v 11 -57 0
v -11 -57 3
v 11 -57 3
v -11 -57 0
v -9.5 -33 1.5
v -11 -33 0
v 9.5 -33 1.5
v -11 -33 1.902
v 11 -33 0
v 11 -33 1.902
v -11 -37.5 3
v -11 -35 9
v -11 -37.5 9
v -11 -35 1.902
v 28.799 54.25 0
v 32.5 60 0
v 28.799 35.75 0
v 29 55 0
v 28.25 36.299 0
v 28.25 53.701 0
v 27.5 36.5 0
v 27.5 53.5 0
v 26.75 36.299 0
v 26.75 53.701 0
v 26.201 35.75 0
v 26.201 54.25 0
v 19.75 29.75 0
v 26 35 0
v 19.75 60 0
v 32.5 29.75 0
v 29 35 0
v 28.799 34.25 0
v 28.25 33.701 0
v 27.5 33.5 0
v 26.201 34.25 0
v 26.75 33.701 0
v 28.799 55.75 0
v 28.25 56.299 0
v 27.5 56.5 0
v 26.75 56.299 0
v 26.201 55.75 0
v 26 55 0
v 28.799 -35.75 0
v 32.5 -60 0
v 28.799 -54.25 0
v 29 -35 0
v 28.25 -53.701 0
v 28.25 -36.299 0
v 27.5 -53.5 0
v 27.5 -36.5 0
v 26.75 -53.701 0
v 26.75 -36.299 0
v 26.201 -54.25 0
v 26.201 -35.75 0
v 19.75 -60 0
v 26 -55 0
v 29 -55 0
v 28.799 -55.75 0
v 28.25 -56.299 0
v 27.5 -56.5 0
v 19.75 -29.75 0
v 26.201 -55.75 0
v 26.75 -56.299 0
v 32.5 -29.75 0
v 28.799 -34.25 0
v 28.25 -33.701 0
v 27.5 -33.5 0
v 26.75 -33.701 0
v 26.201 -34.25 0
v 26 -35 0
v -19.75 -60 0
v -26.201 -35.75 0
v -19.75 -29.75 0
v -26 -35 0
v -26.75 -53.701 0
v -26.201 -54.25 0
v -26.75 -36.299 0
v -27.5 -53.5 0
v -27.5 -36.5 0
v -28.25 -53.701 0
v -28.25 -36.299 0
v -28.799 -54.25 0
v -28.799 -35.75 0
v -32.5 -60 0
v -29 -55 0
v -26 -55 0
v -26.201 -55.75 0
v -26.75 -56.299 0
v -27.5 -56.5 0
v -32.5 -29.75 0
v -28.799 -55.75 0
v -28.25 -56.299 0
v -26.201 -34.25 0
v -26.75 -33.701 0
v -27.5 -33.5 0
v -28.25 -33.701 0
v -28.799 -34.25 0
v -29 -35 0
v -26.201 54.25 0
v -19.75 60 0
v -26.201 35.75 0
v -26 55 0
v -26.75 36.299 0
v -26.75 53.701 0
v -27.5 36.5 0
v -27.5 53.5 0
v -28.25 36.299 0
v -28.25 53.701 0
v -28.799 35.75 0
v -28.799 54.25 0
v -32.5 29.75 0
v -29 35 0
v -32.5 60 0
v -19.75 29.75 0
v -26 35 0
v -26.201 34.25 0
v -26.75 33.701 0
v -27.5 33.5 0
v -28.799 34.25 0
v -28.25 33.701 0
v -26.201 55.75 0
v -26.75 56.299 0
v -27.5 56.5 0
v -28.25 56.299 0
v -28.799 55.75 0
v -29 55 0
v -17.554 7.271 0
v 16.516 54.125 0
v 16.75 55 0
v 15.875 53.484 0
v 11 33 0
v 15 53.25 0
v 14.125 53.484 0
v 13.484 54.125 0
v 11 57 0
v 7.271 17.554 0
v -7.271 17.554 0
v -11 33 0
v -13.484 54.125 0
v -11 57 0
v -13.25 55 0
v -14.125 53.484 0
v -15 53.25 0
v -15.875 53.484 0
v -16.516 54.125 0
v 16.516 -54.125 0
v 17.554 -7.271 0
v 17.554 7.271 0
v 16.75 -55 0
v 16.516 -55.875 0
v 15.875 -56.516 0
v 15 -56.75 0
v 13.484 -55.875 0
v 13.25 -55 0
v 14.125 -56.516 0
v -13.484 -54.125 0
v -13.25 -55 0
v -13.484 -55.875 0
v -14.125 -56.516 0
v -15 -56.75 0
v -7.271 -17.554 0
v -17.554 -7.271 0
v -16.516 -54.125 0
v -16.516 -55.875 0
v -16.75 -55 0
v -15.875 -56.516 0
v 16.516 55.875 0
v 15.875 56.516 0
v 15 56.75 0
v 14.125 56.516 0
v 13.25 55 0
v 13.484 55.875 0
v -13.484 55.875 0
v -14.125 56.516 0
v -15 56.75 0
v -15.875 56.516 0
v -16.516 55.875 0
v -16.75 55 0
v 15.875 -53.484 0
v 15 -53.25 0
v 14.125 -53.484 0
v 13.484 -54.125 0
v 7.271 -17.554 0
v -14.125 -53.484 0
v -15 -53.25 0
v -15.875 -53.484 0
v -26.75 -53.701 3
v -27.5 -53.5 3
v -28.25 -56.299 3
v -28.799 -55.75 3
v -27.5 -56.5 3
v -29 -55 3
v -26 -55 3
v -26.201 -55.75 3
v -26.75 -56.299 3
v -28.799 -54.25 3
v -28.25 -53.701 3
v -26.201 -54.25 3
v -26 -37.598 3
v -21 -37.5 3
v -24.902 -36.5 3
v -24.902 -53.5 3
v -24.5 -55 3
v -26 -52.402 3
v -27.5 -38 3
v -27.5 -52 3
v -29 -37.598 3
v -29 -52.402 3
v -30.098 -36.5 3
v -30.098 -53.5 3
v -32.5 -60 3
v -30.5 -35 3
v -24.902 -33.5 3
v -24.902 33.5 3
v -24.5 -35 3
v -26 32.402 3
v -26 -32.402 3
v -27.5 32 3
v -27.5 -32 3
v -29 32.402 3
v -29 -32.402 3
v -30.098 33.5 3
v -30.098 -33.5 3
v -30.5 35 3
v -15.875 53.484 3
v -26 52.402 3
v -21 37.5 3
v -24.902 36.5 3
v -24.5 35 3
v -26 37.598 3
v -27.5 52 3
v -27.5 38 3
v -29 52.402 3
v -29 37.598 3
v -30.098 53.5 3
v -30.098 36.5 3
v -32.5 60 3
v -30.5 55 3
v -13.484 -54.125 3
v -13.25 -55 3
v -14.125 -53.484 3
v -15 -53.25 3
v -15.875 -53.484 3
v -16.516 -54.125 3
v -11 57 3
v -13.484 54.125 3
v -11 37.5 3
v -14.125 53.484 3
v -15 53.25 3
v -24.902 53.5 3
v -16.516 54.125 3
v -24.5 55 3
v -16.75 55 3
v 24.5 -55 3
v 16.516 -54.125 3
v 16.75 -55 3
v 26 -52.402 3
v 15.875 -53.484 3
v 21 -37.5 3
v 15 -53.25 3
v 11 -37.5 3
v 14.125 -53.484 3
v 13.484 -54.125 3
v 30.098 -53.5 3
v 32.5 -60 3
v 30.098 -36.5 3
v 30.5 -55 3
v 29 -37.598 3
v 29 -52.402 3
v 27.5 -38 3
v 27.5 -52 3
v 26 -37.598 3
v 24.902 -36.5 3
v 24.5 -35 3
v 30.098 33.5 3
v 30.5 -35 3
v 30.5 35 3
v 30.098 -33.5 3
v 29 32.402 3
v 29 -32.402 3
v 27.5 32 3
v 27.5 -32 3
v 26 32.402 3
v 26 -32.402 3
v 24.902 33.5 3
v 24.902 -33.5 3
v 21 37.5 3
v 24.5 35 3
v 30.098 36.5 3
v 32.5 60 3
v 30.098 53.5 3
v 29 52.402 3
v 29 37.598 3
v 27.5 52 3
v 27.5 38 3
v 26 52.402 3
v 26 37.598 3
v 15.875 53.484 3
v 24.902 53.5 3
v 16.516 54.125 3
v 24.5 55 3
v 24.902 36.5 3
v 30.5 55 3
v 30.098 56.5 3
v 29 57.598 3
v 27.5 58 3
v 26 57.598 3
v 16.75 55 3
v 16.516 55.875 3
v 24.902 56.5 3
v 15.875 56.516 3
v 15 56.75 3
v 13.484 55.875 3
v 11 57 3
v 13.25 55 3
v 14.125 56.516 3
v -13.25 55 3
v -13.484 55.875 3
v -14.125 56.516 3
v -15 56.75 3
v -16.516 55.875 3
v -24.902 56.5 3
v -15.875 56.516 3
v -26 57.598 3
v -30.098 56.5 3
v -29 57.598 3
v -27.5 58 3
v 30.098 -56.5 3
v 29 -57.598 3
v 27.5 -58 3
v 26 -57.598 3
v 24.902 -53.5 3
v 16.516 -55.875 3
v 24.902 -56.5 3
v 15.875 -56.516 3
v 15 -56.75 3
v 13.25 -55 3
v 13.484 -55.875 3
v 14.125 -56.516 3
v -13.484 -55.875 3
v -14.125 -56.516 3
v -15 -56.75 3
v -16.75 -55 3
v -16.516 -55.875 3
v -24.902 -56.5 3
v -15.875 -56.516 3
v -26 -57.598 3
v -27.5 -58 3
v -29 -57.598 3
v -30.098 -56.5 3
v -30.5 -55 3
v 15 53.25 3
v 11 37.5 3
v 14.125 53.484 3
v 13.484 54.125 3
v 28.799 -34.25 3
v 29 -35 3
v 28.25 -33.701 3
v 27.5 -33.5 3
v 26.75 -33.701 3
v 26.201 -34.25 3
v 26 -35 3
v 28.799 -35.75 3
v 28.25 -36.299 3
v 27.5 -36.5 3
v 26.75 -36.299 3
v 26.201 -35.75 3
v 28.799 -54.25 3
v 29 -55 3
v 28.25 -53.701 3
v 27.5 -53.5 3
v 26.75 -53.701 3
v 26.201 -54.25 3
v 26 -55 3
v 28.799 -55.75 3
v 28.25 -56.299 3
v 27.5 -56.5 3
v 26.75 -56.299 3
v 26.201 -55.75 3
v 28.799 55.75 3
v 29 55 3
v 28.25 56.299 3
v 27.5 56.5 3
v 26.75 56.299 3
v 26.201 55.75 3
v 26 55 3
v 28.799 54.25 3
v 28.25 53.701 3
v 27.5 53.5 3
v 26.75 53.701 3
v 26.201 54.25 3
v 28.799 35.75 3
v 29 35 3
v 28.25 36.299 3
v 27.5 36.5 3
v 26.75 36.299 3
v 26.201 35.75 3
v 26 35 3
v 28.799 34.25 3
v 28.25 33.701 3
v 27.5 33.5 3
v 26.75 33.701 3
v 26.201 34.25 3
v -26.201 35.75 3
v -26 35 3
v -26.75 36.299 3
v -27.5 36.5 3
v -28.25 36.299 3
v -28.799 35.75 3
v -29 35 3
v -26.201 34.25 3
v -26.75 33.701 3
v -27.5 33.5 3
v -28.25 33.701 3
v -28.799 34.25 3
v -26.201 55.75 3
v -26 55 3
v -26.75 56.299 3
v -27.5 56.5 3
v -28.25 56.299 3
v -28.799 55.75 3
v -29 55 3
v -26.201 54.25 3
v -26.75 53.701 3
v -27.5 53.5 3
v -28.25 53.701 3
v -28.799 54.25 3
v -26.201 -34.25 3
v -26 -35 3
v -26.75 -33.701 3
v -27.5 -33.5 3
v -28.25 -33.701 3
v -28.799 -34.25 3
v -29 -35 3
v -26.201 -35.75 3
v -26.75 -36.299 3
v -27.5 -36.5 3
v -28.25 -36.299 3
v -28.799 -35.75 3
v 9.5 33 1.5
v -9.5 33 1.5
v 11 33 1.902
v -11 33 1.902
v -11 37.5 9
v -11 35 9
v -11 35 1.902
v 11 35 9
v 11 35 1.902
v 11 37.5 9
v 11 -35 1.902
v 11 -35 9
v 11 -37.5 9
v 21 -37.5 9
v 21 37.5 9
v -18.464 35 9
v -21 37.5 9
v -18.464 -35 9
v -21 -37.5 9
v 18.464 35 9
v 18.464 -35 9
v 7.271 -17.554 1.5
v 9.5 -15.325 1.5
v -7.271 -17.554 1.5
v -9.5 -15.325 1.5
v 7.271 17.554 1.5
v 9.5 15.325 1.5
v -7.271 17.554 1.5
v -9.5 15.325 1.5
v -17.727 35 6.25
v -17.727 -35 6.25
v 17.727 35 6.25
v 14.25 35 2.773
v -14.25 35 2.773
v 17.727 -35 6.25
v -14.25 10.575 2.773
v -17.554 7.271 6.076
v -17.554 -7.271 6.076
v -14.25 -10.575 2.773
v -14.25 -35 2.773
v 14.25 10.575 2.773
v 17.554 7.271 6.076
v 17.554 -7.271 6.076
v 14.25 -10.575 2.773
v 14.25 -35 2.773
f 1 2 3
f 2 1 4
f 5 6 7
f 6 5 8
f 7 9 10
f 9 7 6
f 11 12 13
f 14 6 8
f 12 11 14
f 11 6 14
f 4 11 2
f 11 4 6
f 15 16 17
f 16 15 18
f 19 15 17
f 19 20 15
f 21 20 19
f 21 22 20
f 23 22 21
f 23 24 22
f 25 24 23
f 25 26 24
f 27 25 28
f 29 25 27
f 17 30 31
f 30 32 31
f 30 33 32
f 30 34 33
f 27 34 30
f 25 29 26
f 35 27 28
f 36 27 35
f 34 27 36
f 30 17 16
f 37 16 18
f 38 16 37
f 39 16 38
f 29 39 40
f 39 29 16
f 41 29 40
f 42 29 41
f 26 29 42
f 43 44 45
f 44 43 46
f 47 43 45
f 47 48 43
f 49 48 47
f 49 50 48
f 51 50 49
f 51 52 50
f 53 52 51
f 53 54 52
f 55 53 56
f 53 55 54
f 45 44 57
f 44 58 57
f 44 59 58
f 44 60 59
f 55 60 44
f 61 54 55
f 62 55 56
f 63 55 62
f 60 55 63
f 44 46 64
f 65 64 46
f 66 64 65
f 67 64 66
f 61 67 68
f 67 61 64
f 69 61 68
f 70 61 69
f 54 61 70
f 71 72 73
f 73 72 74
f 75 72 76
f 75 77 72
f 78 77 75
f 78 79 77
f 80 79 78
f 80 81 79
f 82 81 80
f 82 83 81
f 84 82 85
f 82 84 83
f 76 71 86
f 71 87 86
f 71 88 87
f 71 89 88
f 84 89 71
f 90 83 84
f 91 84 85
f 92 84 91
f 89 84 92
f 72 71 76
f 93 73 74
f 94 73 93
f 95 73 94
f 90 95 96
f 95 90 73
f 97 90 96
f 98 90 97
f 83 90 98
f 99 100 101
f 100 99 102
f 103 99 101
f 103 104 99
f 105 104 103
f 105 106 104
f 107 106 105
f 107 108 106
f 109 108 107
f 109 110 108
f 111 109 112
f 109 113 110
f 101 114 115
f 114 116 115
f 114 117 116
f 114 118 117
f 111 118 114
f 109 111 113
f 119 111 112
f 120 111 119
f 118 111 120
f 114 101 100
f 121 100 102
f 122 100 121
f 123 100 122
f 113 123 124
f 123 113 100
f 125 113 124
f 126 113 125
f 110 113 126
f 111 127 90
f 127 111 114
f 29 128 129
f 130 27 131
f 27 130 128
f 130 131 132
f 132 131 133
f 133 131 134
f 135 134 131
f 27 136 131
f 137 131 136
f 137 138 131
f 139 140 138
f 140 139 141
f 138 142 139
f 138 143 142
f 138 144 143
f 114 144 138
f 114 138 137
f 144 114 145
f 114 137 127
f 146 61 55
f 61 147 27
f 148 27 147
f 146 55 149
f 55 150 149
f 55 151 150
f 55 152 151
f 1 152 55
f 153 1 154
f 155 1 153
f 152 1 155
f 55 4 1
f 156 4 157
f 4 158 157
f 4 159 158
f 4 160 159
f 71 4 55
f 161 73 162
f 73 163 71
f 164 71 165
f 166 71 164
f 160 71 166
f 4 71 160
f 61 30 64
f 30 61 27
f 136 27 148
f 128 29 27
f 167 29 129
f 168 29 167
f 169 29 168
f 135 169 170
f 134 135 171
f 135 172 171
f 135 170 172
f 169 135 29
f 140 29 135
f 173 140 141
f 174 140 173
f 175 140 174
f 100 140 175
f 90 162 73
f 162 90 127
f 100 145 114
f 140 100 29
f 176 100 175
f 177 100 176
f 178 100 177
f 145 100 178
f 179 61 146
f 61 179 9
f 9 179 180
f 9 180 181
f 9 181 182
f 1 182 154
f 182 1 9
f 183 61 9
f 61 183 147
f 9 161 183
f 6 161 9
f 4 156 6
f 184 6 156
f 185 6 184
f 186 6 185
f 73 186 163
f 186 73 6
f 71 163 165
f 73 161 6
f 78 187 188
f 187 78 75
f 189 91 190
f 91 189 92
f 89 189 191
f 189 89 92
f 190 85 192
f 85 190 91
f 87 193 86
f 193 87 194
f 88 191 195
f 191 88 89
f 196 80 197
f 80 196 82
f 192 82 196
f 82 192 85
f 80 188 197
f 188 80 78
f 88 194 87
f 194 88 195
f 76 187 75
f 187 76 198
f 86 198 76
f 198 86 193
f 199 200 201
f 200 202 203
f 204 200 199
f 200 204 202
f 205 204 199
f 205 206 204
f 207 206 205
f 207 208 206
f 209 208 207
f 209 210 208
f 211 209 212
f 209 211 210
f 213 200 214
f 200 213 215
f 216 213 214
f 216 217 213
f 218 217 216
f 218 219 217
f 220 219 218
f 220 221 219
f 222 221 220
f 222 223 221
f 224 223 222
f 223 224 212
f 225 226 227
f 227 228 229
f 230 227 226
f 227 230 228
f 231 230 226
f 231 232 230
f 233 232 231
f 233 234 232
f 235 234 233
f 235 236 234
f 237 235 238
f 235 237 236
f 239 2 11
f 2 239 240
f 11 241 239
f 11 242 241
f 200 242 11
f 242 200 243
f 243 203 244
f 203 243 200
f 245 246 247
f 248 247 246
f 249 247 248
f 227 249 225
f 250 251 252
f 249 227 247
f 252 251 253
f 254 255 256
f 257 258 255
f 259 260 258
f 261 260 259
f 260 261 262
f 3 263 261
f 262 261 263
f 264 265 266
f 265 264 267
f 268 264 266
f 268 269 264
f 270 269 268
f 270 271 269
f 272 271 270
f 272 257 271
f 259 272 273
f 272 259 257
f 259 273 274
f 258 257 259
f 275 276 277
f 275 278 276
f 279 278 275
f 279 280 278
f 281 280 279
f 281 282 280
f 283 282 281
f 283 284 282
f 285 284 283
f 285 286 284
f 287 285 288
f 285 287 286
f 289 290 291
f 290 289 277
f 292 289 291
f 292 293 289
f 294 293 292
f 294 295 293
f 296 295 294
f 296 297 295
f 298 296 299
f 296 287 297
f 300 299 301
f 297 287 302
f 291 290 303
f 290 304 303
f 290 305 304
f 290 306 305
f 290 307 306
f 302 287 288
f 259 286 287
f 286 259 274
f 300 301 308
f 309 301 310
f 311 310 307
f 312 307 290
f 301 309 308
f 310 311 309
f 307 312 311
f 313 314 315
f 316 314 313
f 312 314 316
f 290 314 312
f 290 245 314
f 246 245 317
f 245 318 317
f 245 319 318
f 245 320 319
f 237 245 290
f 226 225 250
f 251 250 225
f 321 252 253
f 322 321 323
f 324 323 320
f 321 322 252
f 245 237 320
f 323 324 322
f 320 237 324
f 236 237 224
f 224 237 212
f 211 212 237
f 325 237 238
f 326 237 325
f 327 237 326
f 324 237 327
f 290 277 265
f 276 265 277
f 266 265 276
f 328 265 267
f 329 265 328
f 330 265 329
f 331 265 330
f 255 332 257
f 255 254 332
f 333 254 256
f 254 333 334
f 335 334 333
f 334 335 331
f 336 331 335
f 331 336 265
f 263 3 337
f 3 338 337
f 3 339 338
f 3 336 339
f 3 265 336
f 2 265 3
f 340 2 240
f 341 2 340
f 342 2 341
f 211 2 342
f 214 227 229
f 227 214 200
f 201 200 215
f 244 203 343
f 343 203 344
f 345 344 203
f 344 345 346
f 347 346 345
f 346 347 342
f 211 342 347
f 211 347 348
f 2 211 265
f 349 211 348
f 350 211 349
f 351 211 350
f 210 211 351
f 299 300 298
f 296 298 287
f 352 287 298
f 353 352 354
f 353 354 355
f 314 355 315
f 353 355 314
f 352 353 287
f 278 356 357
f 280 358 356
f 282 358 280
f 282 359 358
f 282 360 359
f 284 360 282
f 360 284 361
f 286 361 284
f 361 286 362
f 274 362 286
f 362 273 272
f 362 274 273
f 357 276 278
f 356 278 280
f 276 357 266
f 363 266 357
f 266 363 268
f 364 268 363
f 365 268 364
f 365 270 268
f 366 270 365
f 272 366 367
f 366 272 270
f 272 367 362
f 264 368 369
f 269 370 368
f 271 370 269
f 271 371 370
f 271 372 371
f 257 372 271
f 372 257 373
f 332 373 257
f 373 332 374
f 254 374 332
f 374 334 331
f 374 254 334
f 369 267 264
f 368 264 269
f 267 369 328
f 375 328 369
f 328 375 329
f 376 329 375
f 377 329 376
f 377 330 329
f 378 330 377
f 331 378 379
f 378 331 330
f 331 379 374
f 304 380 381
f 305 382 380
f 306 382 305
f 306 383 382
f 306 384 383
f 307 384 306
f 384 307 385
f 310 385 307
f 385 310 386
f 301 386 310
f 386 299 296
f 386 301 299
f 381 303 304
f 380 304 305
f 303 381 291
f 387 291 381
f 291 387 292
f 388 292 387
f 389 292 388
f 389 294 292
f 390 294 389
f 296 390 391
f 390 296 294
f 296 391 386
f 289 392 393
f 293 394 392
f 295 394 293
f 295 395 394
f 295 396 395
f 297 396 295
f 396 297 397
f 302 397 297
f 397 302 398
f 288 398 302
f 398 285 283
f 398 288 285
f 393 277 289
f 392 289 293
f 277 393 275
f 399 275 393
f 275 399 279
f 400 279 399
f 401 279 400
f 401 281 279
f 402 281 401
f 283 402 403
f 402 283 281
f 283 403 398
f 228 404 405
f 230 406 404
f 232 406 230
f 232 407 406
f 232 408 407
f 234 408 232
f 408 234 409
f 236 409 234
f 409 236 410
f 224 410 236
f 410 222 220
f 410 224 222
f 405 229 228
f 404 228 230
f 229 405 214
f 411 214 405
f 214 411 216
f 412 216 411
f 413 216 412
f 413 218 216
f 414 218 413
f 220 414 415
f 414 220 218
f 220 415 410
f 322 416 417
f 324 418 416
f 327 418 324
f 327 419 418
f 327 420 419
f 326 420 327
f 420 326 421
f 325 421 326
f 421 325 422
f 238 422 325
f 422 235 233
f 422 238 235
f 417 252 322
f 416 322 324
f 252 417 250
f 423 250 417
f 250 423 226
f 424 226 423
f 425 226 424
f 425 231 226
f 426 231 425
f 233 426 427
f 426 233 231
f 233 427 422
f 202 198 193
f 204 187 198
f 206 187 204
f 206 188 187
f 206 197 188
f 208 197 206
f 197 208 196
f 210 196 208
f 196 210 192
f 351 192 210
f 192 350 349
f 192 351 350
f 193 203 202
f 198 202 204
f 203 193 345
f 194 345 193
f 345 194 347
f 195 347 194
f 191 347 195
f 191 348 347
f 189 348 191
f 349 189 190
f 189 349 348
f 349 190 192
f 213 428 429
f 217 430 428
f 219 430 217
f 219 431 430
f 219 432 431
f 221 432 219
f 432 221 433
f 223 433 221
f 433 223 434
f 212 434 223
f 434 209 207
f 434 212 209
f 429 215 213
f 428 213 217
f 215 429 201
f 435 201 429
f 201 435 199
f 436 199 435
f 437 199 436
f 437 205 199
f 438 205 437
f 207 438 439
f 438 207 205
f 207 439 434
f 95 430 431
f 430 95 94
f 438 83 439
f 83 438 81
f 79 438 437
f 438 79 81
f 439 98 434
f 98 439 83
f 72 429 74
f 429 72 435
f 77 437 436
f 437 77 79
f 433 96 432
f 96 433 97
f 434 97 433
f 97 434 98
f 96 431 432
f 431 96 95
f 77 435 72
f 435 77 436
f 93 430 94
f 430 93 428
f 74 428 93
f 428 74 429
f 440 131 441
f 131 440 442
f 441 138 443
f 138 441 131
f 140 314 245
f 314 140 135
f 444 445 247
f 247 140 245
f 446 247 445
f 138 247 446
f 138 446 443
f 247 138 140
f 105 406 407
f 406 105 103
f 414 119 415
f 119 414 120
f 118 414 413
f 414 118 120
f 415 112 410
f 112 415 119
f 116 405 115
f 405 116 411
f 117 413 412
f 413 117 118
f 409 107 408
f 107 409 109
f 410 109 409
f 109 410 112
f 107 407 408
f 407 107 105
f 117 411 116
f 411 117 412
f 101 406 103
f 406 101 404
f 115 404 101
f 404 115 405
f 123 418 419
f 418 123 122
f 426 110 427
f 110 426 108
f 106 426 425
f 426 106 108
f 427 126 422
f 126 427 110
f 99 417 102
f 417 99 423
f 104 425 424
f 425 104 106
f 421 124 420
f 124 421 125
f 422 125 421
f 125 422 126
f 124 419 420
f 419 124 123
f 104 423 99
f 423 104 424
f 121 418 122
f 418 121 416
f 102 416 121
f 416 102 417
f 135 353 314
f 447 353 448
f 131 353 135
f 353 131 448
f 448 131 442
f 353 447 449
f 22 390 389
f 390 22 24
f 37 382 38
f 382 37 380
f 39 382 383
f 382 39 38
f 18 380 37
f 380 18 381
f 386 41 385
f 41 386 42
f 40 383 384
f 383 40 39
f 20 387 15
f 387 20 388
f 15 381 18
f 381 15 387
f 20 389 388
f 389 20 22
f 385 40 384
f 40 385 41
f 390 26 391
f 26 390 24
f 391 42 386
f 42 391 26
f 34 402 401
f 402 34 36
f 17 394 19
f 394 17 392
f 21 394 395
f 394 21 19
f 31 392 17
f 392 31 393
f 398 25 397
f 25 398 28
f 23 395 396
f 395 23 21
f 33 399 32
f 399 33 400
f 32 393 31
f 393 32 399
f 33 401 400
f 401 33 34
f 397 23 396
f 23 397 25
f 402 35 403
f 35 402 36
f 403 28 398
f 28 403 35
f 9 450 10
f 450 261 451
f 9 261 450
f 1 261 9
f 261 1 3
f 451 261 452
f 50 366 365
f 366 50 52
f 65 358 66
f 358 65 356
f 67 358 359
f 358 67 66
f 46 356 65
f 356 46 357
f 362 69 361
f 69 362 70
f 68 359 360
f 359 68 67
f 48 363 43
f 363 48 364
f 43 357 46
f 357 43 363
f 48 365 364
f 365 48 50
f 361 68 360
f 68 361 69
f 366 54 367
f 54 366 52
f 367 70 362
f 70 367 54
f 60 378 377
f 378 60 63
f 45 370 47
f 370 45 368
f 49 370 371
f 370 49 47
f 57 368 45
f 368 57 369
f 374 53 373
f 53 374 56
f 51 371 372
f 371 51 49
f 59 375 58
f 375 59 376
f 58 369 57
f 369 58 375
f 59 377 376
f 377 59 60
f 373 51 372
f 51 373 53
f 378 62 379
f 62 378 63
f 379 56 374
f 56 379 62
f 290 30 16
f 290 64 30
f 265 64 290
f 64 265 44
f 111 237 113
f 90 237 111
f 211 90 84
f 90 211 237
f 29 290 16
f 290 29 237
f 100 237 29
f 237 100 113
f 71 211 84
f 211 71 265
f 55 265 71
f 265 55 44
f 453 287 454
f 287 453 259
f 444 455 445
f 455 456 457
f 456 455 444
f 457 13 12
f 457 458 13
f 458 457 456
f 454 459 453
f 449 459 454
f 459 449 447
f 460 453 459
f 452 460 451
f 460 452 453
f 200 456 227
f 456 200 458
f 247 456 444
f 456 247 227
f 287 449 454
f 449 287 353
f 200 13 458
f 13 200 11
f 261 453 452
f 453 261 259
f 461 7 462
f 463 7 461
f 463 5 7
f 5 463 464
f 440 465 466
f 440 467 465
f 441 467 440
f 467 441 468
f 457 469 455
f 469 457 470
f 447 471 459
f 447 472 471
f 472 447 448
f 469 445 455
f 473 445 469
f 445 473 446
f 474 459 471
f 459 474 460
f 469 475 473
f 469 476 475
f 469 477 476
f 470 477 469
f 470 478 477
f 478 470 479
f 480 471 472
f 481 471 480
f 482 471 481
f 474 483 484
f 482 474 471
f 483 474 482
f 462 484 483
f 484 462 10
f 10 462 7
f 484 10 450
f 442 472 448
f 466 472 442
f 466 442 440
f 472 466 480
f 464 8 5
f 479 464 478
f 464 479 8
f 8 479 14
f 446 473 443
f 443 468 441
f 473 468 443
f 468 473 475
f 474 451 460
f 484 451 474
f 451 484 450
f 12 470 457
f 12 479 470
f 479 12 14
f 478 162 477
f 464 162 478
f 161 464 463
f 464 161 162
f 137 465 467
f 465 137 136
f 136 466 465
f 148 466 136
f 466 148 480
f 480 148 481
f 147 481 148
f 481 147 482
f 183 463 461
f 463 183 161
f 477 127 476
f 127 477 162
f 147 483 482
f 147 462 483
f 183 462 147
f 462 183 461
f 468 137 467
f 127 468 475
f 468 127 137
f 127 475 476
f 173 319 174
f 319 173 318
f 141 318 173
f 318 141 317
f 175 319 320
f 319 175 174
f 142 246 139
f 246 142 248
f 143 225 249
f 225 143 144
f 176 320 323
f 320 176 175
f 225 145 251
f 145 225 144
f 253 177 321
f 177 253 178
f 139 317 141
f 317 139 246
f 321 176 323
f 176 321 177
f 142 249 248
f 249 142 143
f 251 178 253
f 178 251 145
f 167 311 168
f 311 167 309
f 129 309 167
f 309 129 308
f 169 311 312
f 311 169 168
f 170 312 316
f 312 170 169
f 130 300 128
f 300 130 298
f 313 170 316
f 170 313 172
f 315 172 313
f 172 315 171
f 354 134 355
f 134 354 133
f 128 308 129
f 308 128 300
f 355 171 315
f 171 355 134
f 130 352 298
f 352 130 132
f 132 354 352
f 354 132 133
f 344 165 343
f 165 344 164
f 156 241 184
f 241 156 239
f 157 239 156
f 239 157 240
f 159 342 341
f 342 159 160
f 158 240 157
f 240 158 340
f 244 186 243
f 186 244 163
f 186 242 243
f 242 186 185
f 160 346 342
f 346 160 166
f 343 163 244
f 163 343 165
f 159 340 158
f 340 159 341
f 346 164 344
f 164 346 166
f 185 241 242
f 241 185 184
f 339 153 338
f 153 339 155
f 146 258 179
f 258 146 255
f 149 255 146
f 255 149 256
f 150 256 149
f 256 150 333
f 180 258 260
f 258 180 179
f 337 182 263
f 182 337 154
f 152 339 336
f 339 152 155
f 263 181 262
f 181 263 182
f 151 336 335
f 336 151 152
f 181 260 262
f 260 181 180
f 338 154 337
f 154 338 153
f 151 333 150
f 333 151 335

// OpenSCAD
// file: MMMotor.scad
$fn=12;

module MMMotor(){
    $fn=12;
    translate([0,-12/2,-10/2]){
        cube([9.5,12,10]);
        intersection(){
            cube([9+15,12,10]);
            rotate([0,90,0]){
                translate([-10/2,12/2,0]){
                    cylinder(9+15,d=12);
                }
            }
        }
    }
    rotate([0,270,0]){
        cylinder(9,d=4);
        cylinder(2,d=6);
    }
    rotate([0,90,0]){
        cylinder(9+15+2,d=6);
        cylinder(9+15+4.5,d=2);
    }
    translate([9+15,-12/2-6,-10/2]){
        hull(){
            cube([1.6,18,10]);
            translate([-2,-(18-18),0]){
                cube([12,18+6,15]);
            }
            translate([-2,(18+6)/2,20]){
                rotate([0,90,0]){
                    cylinder(12,d=18+9.5,$fn=6);
                }
            }
        }
    }
}
module IMU(){
    x=.8*25.4;  //convert from In to mm
    y=.5*25.4;  //Convert form In to mm
    z=1.6;      //already in MM no conversion necessary
    b=.1*25.4;   //Boarder In to MM
    translate ([-x/2,-y/2,0]){
        minkowski(){
            cube([x,y,z]);
            cylinder(z,r=b);
        }
        translate([0,0,-10]){
            translate([0,0,0]){
                cylinder(20,d=2.5);
            }
            translate([x,0,0]){
                cylinder(20,d=2.5);
            }
            translate([x,y,0]){
                cylinder(20,d=2.5);
            }
            translate([0,y,0]){
                cylinder(20,d=2.5);
            }
        }
      
    }
}
module LiPo(x=68,y=34,z=9,b=0){
    x=x+b*2;
    y=y+b*2;
    
    translate([-x/2,-y/2,.25]){
        cube([x,y,z]);
    }
}
module LiPo2(){
    rotate([90,0,0]){
        translate([0,0,-70/2]){
            hull(){
                translate([-19/2,0,0]){
                    cylinder(70,d=19);
                }
                translate([19/2,0,0]){
                    cylinder(70,d=19);
                }
            }
        }
    }
}
module Spacer(h=12,o=7,i=3){
    difference(){
        cylinder(h,d=o,$fn=6);
        cylinder(h,d=i,$fn=12);
    }
}
module Mecanum(Angle=45){
    
    rotate([0,270,0]){
        cylinder(2,d=35);
        translate([0,0,22]){
            cylinder(2,d=35);
        }
    
        for (x = [0:6]){
            rotate([0,0,(360/6)*x]){
                translate([(35/2)-2,0,24/2]){
                    rotate([Angle,0,0]){
                        translate([0,0,-24/2]){
                            cylinder(24,d=8);
                        }
                    }
                }
            }
        }
    }
}
 module MotorMountH(){
    translate([15/2-2,0,-15/2+1.5]){
         rotate([0,0,270]){
            difference(){
                union(){
                     translate([-30/2,-15/2,0]){
                         cube([30,15,3]);
                     }
                     translate([-17/2,-15/2,0]){
                         cube([17,15,13]);
                     }
                }
                rotate([0,0,90]){
                    translate([-15/2+2,0,15/2-2.5]){
                        MMMotor();
                    }
                    translate([-10/2,-12/2,-3]){
                            cube([15,12,10]);
                    }
                }
                translate([-10,0,0]){
                    cylinder(25,d=3);
                    translate([0,0,2]){
                        rotate([0,0,90]){
                            cylinder(20,d=6,$fn=6);
                        }
                    }
                }
                translate([10,0,0]){
                    cylinder(25,d=3);
                    translate([0,0,2]){
                        rotate([0,0,90]){
                            cylinder(20,d=6,$fn=6);
                        }
                    }
                }
            }
         }
     }
 } 
 module MotorMountV(){
    translate([15/2-2,0,-15/2+1.5]){
         rotate([0,0,270]){
            difference(){
                union(){
                     translate([-30/2,-15/2,0]){
                         cube([30,15,3]);
                     }
                     translate([-15/2,-15/2,0]){
                         cube([15,15,15]);
                     }
                }
                rotate([90,0,90]){
                    translate([-6,15/2-1.5,0]){
                        MMMotor();
                    }
                    translate([-4,-10,-10/2]){
                            cube([13,15,10]);
                    }
                }
                translate([-10,0,0]){
                    cylinder(5,d=3);
                    translate([0,0,2]){
                        rotate([0,0,90]){
                            cylinder(20,d=6,$fn=6);
                        }
                    }
                }
                translate([10,0,0]){
                    cylinder(5,d=3);
                    translate([0,0,2]){
                        rotate([0,0,90]){
                            cylinder(20,d=6,$fn=6);
                        }
                    }
                }
            }
         }
     }
 }
module MotorMountF(T=3){
    translate([15.5/2-2.25,0,-6]){
        rotate([0,0,90]){
            translate([-20/2,0,-10]){
                cylinder(15,d=3);
                translate([0,0,-T]){
                    cylinder(10,d=6);
                }
               translate([20,0,0]){
                    cylinder(15,d=3);
                    translate([0,0,-T]){
                        cylinder(10,d=6);
                    }
               }
           }
           
           translate([-30.5/2,-15.5/2,0]){
               cube([30.5,15.5,1.5]);
           }
        }
    }
}
module BatBox4AA(){
    x=65;
    y=68;
    z=16;
    translate([-x/2+3.5,-y/2,0]){
        minkowski(){
            cube([x-3.5*2,y,z-3.5*2]);
            rotate([-90,0,0]){
                cylinder(.01,r=3.5);
            }

        }
    }
    translate([-(x-6)/2,-(y-8)/2,0]){
        cube([(x-6)/2-2,y-8,z+5]);
    }
    translate([2,-(y-8)/2,0]){
        cube([(x-6)/2-2,y-8,z+5]);
    }
}
module Battery(){
    rotate([-90,0,0]){
        translate([-(26-16)/2,-(22-16)/2,-105/2]){
            minkowski(){
                cube([26-16,22-16,105]);
                cylinder(105,r=8);
            }
        }
    }
}
module Switch(){
    translate([0,0,-2]){
        cylinder (9,d=6);
        cylinder (2,d=12);
        translate ([0,6,0]){
            cylinder(3.5,d=2.5);
        }
        translate([-8/2,-13/2,-14]){
            cube([8,13,14]);
        }
        
    }
    translate([0,9,3]){
        linear_extrude(5){
          text("OFF",size=4, font = "Liberation Sans:sytle='bold'",halign="center",valign="center");
        }
    }
    translate([0,-9,3]){
        linear_extrude(5){
          text("ON",size=4, font = "Liberation Sans:sytle='bold'",halign="center",valign="center");
        }
    }
}
module SR04(){
    translate([-45.5/2,-20.5/2,-12]){
        cube([45.5,20.5,12]);
    }
    translate([-14/2,5.25,0]){
        cube([14,5,4]);
    }
    translate([-14/2,-20.5/2,-10]){
        cube([14,5,14]);
    }
    translate([-26/2,0,0]){
        cylinder(13,d=17);
    }
    translate([26/2,0,0]){
        cylinder(13,d=17);
    }
}
module MP2636(){
    translate([0,0,-10]){
        cylinder(20,d=3.5,$fn=12);
    }
    translate([-4,-4,0]){
        cube([35.5,30.5,1.6]);
    }
    translate([4,-4,0]){
        cube([20,30.5,4]);
    }
    translate([12,27,0]){
        cylinder(15,d=10);
        translate([-1,0,0]){
            cube([2,10,15]);
        }
    }
    
}    
LiPo2();
//MP2636();
//Battery();
//BatBox4AA();
//MotorMountH();
//MotorMountF();
//Mecanum(Angle=-45);
//rotate([90,0,0]){
//    MMMotor();
//}
//IMU(); 
//Spacer(h=3,i=2.5);
//Switch();
// main file
use <MMMotor.scad>;

module Fixings(w,l,t,dia=3){
    translate([-w/2,-l/2,0]){
        cylinder(t,d=dia);
    }
    translate([w/2,-l/2,0]){
        cylinder(t,d=dia);
    }
    translate([-w/2,l/2,0]){
        cylinder(t,d=dia);
    }
    translate([w/2,l/2,0]){
        cylinder(t,d=dia);
    }
}
module WheelMotor(A=45){
    translate([-.5,0,0]){
        MMMotor();
        translate([-3,0,0]){
            Mecanum(Angle=A);
        }
        rotate([180,0,0]){
            MotorMountH();
            MotorMountF();
        }
    }
}
module DriveTrain(l=50,w=60){
    translate([-w/2,0,-6]){
        translate([0,-l/2,0]){
            translate([0,0,0]){
                WheelMotor();
            }
            translate([0,l,0]){
                WheelMotor(-45);
            }
        }
        translate([w,0,0]){
            rotate([0,0,180]){
                translate([0,-l/2,0]){
                    translate([0,0,0]){
                        WheelMotor();
                    }
                    translate([0,l,0]){
                        WheelMotor(-45);
                    }
                }
            }
        }
    }
}
module FrontPlate(w,l){
    difference(){
        difference(){
            translate([-(w-20)/2,l/2-8,0]){
                cube([w-20,8,27.9]);
                hull(){
                    translate([-10,8,0]){
                        cube([w,2,31]);
                    }
                //    cube([w,8,31]);
                    translate([-5,8,6]){
                        cube([w-10,10,19]);
                    }
                }
            }
        }
        translate([-w/2,l/2-9,6]){
            cube([w,11,18]);
        }
        translate([-(w-42)/2,l/2-10,0]){
        cube([w-42,8,20]);
        }
        translate([-15,(l/2)-5,0]){
            cylinder(60,d=3.5,$fn=12);
        }
        translate([+15,(l/2)-5,0]){
            cylinder(60,d=3.5,$fn=12);
        }
        translate([0,l/2+3,15.5]){
            rotate([-90,0,0]){
                SR04();
            }
        }
    }
}
module RearPlate(w,l){
    difference(){
        union(){
            translate([-(w-20)/2,-l/2,0]){
                cube([w-20,8,31]);
                translate([-10,-5,-10]){
                    cube([w,5,41]);
                }
            }
        }
        translate([-w/2,-l/2,6]){
            cube([w,15,20]);
        }
        translate([-(w-42)/2,l/2-10,0]){
        cube([w-42,8,26]);
        }
        translate([-15,-(l/2)+5,0]){
            cylinder(60,d=3.5,$fn=12);
        }
        translate([+15,-(l/2)+5,0]){
            cylinder(60,d=3.5,$fn=12);
        }
        translate([-22,-l/2,15]){
            rotate([90,0,0]){
                Switch();
            }
        }
        translate([0,-l/2-5,-5]){
            rotate([90,-90,180]){
                MP2636();
            }
        }
        translate([-(w-42)/2,-l/2,0]){
            cube([w-42,15,15]);
        }
    }

}

module Chassis(w,l,T=3){
    difference(){
        union(){
            translate([-w/2,-l/2,0]){
                cube([w,l,T]);
            }
            translate([-42/2,-75/2,0]){
                cube([42,75,9]);
            }
                
        }
        
        rotate([180,0,0]){
            translate([0,0,-(8+T)]){
                LiPo2();
            }
        }
        rotate([0,0,45/2]){
            cylinder(10,d=38,$fn=8);
        }
        translate([-15,(l/2)-5,0]){
            cylinder(60,d=3.5,$fn=12);
        }
        translate([+15,(l/2)-5,0]){
            cylinder(60,d=3.5,$fn=12);
        }
        translate([-15,-(l/2)+5,0]){
            cylinder(60,d=3.5,$fn=12);
        }
        translate([+15,-(l/2)+5,0]){
            cylinder(60,d=3.5,$fn=12);
        }
    }
}
module CutOut(dia){
    rotate([0,0,45/2]){
        cylinder(15,d=dia,$fn=8);
    }
}
//WheelMotor();
module PiPlate(w,l,t){
    $fn=12;
    difference(){
        union(){
            translate([-w/2,-l/2,0]){
                cube([w,l,t]);
            }

            translate([0,-20,0]){
                translate([0,0,0]){
                    Fixings(58,23,15,dia=7,$fn=6);
                }
                Fixings(58,49,18,dia=7,$fn=6);
            }

            translate([0,-15,t-1]){
                rotate([0,0,90]){
                    LiPo(z=7,b=2);
                }
            }
          
        }
        translate([0,-15,t]){
            rotate([0,0,90]){
                LiPo();
            }
        }
        translate([-20,40,t+.5]){
            rotate([0,0,90]){
                IMU();
                translate([0,0,-5]){
                    CutOut(20);
                }
            }
        }
        translate([20,40,t+.5]){
            rotate([0,0,90]){
                IMU();
                translate([0,0,-5]){
                    CutOut(20);
                }
            }
        }
        translate([0,40,t+.5]){
            rotate([0,0,90]){
                IMU();
                translate([0,0,-5]){
                    CutOut(20);
                }
            }
        }
        translate([0,-20,0]){
            Fixings(58,23,25,dia=2.4,$fn=12);
            Fixings(58,49,25,dia=2.4,$fn=12);
        }
        translate([-15,(l/2)-5,0]){
            cylinder(10,d=3.5);
            translate([-15,0,0]){
                cylinder(10,d=3);
                translate([0,-30,0]){
                    cylinder(10,d=3);
                }
            }
        }
        translate([+15,(l/2)-5,0]){
            cylinder(10,d=3.5);
            translate([+15,0,0]){
                cylinder(10,d=3);
                translate([0,-30,0]){
                    cylinder(10,d=3);
                }
            }
        }
        translate([-15,-(l/2)+5,0]){
            cylinder(10,d=3.5);
        }
        translate([+15,-(l/2)+5,0]){
            cylinder(10,d=3.5);
        }

        CutOut(30);
        translate([0,-25/2,0]){
            CutOut(32);
        }
        translate([0,-25,0]){
            CutOut(30);
        }
        translate([-w/2+12,15,0]){
            CutOut(10);
            translate([-20,0,0]){
                cube([20,2,10]);
            }
        }
        translate([w/2-12,15 ,0]){
            CutOut(10);
            cube([20,2,10]);
        }
        translate([-w/2+8,-20,0]){
            CutOut(10);
        }
        translate([w/2-8,-20,0]){
            CutOut(10);
        }
        translate([-w/2+2,-20,0]){
            CutOut(15);
        }
        translate([w/2-2,-20,0]){
            CutOut(15);
        }
    }
}
/*/
difference(){
    FrontPlate(65,120);
    Chassis(65,120,3)
    DriveTrain(l=90,w=65);
    translate([0,0,28]){
        PiPlate(65,120,3);
    }
}
/*/

difference(){
    Chassis(65,120,3);
    DriveTrain(l=90,w=65);
}

//FrontPlate(65,120);
/*/
difference(){
    union(){
    FrontPlate(65,120);
//    RearPlate(65,120);
    }
    translate([0,0,28]){
        PiPlate(65,120,3);
    }
    Chassis(65,120,3);
}
/*/
/*/
    translate([0,0,28]){
        PiPlate(65,120,3);
    }
Chassis(65,120,3);
/*/
/*/
w=65;
T=3;
difference(){
        translate([-(w-20)/2,0,0]){
                cube([w-20,6,4]);
        }
        translate([(w/2)-15,3,0]){
            cylinder(60,d=3,$fn=12);
        }
        translate([-(w/2)+15,3,0]){
            cylinder(60,d=3,$fn=12);
        }
    }
/*/
